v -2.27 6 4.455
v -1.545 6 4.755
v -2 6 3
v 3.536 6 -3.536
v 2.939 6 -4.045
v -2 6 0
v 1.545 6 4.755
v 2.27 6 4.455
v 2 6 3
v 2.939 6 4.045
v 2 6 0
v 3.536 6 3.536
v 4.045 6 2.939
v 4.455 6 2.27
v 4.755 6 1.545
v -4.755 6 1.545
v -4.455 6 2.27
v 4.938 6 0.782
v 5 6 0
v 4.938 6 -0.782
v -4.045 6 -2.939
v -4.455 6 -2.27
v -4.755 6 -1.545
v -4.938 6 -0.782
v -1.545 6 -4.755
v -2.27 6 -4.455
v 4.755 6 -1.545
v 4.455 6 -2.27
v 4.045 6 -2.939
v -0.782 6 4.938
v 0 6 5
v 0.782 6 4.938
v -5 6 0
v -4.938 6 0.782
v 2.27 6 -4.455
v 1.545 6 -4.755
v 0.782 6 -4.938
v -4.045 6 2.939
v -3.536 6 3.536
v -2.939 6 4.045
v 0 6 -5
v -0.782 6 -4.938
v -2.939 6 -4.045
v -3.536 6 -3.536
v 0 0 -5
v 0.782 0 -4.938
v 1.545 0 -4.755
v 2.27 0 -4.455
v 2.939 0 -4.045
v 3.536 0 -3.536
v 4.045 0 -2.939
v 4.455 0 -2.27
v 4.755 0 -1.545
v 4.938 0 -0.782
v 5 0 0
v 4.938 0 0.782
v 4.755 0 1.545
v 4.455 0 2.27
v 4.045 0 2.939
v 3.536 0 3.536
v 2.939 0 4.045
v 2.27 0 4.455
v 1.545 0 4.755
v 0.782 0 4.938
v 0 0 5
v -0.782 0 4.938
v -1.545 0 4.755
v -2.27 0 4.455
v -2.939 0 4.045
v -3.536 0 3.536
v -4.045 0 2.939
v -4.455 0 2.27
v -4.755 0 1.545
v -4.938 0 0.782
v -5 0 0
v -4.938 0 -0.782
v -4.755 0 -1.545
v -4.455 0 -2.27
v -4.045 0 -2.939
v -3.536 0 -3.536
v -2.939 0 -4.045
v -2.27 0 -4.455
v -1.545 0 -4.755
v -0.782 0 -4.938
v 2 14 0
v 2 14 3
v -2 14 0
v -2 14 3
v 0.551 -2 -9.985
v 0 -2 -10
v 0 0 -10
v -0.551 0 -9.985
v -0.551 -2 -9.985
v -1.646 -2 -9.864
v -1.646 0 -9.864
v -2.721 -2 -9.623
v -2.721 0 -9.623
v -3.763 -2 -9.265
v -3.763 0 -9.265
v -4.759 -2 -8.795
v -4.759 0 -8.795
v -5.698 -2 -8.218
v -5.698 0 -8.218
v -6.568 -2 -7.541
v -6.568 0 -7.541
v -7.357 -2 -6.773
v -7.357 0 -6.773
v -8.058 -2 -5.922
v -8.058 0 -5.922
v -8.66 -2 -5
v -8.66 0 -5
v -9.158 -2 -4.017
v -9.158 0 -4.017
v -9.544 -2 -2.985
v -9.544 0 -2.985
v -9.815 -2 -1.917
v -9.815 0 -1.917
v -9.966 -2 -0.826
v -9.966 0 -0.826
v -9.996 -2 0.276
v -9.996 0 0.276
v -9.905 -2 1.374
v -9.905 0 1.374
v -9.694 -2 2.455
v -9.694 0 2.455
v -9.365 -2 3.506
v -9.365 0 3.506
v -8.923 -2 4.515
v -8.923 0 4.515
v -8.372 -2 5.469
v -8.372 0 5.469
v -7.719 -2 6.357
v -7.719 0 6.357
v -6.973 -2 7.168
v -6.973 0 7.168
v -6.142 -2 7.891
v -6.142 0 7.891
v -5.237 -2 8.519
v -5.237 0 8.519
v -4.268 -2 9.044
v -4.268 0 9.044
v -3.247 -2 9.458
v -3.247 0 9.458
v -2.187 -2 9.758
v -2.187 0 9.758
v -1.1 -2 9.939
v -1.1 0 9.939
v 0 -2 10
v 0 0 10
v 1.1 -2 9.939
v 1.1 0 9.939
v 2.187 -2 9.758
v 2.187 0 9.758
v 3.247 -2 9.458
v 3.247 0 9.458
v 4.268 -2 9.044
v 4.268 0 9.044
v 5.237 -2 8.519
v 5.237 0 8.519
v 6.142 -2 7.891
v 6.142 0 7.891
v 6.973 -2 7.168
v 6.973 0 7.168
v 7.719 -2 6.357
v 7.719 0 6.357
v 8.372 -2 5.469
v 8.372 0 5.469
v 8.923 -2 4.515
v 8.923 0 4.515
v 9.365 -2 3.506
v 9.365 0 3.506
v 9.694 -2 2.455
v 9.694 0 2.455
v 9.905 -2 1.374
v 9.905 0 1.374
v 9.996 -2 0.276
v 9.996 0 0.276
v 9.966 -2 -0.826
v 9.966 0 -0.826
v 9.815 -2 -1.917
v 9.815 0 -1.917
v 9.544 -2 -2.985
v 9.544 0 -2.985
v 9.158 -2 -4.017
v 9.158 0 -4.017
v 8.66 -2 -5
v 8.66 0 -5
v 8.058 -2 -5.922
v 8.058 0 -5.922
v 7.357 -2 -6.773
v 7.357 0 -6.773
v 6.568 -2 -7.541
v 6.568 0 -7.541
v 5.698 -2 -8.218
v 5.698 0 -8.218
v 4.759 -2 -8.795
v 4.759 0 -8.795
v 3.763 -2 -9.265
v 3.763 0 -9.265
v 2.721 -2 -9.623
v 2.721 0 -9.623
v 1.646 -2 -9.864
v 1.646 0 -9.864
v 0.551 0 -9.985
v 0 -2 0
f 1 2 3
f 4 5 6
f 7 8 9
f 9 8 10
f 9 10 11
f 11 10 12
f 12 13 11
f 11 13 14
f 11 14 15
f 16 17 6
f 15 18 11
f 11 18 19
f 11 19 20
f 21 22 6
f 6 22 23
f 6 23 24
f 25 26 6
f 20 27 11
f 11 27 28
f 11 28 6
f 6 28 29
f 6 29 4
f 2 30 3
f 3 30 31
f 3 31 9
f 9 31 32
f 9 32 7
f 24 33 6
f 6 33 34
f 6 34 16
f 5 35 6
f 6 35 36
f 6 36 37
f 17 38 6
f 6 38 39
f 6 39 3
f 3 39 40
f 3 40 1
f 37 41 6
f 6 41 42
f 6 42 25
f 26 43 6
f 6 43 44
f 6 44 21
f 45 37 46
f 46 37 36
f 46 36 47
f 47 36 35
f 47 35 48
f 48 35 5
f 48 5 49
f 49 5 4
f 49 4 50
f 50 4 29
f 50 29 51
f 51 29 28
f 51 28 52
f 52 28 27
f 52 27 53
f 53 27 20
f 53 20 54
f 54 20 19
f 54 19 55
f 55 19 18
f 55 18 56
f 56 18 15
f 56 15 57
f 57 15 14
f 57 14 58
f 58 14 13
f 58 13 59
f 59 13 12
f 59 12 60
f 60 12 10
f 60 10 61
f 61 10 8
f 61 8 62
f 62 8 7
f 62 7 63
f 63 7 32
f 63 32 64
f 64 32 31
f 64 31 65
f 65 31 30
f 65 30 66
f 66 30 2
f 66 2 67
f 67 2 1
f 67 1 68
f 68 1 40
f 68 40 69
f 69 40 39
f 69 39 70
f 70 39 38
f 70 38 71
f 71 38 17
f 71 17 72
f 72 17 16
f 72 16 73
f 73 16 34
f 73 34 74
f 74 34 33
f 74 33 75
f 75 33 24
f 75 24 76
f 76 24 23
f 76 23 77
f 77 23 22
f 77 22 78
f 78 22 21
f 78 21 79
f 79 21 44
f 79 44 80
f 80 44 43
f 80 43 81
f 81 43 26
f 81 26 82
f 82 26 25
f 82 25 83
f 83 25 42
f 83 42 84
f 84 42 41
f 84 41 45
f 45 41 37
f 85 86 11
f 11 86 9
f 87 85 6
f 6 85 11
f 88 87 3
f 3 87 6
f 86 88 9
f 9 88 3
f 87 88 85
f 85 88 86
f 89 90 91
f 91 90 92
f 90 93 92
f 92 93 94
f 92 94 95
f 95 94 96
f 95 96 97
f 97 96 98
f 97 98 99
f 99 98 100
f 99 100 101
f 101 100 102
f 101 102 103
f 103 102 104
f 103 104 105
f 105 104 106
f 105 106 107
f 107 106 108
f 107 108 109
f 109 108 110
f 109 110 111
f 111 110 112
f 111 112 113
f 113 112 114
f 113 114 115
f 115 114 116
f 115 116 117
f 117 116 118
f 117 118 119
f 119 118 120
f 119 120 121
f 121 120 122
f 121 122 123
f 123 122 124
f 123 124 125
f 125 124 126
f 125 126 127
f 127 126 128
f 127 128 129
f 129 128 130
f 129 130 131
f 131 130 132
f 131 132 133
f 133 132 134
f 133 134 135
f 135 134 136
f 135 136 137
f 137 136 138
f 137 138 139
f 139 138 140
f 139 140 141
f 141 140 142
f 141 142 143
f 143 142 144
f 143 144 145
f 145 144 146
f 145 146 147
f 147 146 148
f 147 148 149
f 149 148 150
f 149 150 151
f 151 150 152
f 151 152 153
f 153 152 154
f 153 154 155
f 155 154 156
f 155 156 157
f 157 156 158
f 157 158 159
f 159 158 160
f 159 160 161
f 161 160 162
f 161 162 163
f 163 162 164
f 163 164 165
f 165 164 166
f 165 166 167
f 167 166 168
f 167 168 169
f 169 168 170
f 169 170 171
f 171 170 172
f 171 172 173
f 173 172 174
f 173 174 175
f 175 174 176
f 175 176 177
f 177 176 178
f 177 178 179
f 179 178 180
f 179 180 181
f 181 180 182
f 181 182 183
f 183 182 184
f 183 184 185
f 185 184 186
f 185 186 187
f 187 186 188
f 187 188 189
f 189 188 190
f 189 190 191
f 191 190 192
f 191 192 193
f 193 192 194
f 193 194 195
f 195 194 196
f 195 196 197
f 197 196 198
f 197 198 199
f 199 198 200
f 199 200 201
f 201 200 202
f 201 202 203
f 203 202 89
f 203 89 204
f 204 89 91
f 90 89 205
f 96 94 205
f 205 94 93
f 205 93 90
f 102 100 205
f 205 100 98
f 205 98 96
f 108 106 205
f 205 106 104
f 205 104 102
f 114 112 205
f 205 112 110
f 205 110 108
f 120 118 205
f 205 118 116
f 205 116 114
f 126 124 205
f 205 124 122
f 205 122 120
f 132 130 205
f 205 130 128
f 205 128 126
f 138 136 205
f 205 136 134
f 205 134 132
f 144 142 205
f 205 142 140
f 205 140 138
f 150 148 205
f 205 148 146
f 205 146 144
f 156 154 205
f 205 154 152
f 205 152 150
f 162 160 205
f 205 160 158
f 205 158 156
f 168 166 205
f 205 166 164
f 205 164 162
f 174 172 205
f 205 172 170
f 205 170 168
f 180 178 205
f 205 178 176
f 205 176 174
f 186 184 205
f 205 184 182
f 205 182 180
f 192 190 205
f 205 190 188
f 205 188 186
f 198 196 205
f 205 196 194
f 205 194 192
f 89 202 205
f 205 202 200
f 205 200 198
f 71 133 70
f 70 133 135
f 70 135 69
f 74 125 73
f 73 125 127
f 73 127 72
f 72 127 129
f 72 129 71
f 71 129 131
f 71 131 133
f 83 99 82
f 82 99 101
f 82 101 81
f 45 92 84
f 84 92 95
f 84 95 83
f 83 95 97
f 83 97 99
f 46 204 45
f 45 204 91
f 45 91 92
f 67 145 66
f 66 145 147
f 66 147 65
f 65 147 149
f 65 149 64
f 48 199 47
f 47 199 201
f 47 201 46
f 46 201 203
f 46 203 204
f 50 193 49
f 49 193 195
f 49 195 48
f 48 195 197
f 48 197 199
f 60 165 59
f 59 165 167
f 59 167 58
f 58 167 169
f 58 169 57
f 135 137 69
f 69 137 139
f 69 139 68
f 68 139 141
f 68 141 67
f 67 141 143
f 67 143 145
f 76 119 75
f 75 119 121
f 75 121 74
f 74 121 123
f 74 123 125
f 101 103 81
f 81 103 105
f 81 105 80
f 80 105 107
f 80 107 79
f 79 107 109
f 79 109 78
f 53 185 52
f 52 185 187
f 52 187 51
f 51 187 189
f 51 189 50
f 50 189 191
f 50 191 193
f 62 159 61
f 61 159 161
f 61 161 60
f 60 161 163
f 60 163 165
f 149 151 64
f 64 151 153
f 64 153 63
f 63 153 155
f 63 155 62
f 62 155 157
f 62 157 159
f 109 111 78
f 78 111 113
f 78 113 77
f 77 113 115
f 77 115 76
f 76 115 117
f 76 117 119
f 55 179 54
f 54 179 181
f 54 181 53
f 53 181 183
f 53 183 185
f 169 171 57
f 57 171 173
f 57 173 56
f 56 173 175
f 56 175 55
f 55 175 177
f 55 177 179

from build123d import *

# Parameters (mm, degrees)
SKETCH1_R           = 5
BOSS_EXTRUDE1_DEPTH = 6
SKETCH3_W           = 4
SKETCH3_H           = 3
BOSS_EXTRUDE2_DEPTH = 8
SKETCH4_R           = 10
BOSS_EXTRUDE3_DEPTH = 2


with BuildPart() as part:
    # Sketch1 → Boss-Extrude1 (new body)
    with BuildSketch(Plane(origin=(0, 0, 0), x_dir=(1, 0, 0), z_dir=(0, 1, 0))):
        Circle(SKETCH1_R)
    extrude(amount=BOSS_EXTRUDE1_DEPTH)

    # Sketch3 → Boss-Extrude2 (add)
    with BuildSketch(Plane(origin=(0, 6, 0), x_dir=(1, 0, 0), z_dir=(0, 1, 0))):
        with Locations((0, -1.5)):
            Rectangle(SKETCH3_W, SKETCH3_H)
    extrude(amount=BOSS_EXTRUDE2_DEPTH)

    # Sketch4 → Boss-Extrude3 (add)
    with BuildSketch(Plane.XZ):
        Circle(SKETCH4_R)
    extrude(amount=BOSS_EXTRUDE3_DEPTH)


solid = part.part
